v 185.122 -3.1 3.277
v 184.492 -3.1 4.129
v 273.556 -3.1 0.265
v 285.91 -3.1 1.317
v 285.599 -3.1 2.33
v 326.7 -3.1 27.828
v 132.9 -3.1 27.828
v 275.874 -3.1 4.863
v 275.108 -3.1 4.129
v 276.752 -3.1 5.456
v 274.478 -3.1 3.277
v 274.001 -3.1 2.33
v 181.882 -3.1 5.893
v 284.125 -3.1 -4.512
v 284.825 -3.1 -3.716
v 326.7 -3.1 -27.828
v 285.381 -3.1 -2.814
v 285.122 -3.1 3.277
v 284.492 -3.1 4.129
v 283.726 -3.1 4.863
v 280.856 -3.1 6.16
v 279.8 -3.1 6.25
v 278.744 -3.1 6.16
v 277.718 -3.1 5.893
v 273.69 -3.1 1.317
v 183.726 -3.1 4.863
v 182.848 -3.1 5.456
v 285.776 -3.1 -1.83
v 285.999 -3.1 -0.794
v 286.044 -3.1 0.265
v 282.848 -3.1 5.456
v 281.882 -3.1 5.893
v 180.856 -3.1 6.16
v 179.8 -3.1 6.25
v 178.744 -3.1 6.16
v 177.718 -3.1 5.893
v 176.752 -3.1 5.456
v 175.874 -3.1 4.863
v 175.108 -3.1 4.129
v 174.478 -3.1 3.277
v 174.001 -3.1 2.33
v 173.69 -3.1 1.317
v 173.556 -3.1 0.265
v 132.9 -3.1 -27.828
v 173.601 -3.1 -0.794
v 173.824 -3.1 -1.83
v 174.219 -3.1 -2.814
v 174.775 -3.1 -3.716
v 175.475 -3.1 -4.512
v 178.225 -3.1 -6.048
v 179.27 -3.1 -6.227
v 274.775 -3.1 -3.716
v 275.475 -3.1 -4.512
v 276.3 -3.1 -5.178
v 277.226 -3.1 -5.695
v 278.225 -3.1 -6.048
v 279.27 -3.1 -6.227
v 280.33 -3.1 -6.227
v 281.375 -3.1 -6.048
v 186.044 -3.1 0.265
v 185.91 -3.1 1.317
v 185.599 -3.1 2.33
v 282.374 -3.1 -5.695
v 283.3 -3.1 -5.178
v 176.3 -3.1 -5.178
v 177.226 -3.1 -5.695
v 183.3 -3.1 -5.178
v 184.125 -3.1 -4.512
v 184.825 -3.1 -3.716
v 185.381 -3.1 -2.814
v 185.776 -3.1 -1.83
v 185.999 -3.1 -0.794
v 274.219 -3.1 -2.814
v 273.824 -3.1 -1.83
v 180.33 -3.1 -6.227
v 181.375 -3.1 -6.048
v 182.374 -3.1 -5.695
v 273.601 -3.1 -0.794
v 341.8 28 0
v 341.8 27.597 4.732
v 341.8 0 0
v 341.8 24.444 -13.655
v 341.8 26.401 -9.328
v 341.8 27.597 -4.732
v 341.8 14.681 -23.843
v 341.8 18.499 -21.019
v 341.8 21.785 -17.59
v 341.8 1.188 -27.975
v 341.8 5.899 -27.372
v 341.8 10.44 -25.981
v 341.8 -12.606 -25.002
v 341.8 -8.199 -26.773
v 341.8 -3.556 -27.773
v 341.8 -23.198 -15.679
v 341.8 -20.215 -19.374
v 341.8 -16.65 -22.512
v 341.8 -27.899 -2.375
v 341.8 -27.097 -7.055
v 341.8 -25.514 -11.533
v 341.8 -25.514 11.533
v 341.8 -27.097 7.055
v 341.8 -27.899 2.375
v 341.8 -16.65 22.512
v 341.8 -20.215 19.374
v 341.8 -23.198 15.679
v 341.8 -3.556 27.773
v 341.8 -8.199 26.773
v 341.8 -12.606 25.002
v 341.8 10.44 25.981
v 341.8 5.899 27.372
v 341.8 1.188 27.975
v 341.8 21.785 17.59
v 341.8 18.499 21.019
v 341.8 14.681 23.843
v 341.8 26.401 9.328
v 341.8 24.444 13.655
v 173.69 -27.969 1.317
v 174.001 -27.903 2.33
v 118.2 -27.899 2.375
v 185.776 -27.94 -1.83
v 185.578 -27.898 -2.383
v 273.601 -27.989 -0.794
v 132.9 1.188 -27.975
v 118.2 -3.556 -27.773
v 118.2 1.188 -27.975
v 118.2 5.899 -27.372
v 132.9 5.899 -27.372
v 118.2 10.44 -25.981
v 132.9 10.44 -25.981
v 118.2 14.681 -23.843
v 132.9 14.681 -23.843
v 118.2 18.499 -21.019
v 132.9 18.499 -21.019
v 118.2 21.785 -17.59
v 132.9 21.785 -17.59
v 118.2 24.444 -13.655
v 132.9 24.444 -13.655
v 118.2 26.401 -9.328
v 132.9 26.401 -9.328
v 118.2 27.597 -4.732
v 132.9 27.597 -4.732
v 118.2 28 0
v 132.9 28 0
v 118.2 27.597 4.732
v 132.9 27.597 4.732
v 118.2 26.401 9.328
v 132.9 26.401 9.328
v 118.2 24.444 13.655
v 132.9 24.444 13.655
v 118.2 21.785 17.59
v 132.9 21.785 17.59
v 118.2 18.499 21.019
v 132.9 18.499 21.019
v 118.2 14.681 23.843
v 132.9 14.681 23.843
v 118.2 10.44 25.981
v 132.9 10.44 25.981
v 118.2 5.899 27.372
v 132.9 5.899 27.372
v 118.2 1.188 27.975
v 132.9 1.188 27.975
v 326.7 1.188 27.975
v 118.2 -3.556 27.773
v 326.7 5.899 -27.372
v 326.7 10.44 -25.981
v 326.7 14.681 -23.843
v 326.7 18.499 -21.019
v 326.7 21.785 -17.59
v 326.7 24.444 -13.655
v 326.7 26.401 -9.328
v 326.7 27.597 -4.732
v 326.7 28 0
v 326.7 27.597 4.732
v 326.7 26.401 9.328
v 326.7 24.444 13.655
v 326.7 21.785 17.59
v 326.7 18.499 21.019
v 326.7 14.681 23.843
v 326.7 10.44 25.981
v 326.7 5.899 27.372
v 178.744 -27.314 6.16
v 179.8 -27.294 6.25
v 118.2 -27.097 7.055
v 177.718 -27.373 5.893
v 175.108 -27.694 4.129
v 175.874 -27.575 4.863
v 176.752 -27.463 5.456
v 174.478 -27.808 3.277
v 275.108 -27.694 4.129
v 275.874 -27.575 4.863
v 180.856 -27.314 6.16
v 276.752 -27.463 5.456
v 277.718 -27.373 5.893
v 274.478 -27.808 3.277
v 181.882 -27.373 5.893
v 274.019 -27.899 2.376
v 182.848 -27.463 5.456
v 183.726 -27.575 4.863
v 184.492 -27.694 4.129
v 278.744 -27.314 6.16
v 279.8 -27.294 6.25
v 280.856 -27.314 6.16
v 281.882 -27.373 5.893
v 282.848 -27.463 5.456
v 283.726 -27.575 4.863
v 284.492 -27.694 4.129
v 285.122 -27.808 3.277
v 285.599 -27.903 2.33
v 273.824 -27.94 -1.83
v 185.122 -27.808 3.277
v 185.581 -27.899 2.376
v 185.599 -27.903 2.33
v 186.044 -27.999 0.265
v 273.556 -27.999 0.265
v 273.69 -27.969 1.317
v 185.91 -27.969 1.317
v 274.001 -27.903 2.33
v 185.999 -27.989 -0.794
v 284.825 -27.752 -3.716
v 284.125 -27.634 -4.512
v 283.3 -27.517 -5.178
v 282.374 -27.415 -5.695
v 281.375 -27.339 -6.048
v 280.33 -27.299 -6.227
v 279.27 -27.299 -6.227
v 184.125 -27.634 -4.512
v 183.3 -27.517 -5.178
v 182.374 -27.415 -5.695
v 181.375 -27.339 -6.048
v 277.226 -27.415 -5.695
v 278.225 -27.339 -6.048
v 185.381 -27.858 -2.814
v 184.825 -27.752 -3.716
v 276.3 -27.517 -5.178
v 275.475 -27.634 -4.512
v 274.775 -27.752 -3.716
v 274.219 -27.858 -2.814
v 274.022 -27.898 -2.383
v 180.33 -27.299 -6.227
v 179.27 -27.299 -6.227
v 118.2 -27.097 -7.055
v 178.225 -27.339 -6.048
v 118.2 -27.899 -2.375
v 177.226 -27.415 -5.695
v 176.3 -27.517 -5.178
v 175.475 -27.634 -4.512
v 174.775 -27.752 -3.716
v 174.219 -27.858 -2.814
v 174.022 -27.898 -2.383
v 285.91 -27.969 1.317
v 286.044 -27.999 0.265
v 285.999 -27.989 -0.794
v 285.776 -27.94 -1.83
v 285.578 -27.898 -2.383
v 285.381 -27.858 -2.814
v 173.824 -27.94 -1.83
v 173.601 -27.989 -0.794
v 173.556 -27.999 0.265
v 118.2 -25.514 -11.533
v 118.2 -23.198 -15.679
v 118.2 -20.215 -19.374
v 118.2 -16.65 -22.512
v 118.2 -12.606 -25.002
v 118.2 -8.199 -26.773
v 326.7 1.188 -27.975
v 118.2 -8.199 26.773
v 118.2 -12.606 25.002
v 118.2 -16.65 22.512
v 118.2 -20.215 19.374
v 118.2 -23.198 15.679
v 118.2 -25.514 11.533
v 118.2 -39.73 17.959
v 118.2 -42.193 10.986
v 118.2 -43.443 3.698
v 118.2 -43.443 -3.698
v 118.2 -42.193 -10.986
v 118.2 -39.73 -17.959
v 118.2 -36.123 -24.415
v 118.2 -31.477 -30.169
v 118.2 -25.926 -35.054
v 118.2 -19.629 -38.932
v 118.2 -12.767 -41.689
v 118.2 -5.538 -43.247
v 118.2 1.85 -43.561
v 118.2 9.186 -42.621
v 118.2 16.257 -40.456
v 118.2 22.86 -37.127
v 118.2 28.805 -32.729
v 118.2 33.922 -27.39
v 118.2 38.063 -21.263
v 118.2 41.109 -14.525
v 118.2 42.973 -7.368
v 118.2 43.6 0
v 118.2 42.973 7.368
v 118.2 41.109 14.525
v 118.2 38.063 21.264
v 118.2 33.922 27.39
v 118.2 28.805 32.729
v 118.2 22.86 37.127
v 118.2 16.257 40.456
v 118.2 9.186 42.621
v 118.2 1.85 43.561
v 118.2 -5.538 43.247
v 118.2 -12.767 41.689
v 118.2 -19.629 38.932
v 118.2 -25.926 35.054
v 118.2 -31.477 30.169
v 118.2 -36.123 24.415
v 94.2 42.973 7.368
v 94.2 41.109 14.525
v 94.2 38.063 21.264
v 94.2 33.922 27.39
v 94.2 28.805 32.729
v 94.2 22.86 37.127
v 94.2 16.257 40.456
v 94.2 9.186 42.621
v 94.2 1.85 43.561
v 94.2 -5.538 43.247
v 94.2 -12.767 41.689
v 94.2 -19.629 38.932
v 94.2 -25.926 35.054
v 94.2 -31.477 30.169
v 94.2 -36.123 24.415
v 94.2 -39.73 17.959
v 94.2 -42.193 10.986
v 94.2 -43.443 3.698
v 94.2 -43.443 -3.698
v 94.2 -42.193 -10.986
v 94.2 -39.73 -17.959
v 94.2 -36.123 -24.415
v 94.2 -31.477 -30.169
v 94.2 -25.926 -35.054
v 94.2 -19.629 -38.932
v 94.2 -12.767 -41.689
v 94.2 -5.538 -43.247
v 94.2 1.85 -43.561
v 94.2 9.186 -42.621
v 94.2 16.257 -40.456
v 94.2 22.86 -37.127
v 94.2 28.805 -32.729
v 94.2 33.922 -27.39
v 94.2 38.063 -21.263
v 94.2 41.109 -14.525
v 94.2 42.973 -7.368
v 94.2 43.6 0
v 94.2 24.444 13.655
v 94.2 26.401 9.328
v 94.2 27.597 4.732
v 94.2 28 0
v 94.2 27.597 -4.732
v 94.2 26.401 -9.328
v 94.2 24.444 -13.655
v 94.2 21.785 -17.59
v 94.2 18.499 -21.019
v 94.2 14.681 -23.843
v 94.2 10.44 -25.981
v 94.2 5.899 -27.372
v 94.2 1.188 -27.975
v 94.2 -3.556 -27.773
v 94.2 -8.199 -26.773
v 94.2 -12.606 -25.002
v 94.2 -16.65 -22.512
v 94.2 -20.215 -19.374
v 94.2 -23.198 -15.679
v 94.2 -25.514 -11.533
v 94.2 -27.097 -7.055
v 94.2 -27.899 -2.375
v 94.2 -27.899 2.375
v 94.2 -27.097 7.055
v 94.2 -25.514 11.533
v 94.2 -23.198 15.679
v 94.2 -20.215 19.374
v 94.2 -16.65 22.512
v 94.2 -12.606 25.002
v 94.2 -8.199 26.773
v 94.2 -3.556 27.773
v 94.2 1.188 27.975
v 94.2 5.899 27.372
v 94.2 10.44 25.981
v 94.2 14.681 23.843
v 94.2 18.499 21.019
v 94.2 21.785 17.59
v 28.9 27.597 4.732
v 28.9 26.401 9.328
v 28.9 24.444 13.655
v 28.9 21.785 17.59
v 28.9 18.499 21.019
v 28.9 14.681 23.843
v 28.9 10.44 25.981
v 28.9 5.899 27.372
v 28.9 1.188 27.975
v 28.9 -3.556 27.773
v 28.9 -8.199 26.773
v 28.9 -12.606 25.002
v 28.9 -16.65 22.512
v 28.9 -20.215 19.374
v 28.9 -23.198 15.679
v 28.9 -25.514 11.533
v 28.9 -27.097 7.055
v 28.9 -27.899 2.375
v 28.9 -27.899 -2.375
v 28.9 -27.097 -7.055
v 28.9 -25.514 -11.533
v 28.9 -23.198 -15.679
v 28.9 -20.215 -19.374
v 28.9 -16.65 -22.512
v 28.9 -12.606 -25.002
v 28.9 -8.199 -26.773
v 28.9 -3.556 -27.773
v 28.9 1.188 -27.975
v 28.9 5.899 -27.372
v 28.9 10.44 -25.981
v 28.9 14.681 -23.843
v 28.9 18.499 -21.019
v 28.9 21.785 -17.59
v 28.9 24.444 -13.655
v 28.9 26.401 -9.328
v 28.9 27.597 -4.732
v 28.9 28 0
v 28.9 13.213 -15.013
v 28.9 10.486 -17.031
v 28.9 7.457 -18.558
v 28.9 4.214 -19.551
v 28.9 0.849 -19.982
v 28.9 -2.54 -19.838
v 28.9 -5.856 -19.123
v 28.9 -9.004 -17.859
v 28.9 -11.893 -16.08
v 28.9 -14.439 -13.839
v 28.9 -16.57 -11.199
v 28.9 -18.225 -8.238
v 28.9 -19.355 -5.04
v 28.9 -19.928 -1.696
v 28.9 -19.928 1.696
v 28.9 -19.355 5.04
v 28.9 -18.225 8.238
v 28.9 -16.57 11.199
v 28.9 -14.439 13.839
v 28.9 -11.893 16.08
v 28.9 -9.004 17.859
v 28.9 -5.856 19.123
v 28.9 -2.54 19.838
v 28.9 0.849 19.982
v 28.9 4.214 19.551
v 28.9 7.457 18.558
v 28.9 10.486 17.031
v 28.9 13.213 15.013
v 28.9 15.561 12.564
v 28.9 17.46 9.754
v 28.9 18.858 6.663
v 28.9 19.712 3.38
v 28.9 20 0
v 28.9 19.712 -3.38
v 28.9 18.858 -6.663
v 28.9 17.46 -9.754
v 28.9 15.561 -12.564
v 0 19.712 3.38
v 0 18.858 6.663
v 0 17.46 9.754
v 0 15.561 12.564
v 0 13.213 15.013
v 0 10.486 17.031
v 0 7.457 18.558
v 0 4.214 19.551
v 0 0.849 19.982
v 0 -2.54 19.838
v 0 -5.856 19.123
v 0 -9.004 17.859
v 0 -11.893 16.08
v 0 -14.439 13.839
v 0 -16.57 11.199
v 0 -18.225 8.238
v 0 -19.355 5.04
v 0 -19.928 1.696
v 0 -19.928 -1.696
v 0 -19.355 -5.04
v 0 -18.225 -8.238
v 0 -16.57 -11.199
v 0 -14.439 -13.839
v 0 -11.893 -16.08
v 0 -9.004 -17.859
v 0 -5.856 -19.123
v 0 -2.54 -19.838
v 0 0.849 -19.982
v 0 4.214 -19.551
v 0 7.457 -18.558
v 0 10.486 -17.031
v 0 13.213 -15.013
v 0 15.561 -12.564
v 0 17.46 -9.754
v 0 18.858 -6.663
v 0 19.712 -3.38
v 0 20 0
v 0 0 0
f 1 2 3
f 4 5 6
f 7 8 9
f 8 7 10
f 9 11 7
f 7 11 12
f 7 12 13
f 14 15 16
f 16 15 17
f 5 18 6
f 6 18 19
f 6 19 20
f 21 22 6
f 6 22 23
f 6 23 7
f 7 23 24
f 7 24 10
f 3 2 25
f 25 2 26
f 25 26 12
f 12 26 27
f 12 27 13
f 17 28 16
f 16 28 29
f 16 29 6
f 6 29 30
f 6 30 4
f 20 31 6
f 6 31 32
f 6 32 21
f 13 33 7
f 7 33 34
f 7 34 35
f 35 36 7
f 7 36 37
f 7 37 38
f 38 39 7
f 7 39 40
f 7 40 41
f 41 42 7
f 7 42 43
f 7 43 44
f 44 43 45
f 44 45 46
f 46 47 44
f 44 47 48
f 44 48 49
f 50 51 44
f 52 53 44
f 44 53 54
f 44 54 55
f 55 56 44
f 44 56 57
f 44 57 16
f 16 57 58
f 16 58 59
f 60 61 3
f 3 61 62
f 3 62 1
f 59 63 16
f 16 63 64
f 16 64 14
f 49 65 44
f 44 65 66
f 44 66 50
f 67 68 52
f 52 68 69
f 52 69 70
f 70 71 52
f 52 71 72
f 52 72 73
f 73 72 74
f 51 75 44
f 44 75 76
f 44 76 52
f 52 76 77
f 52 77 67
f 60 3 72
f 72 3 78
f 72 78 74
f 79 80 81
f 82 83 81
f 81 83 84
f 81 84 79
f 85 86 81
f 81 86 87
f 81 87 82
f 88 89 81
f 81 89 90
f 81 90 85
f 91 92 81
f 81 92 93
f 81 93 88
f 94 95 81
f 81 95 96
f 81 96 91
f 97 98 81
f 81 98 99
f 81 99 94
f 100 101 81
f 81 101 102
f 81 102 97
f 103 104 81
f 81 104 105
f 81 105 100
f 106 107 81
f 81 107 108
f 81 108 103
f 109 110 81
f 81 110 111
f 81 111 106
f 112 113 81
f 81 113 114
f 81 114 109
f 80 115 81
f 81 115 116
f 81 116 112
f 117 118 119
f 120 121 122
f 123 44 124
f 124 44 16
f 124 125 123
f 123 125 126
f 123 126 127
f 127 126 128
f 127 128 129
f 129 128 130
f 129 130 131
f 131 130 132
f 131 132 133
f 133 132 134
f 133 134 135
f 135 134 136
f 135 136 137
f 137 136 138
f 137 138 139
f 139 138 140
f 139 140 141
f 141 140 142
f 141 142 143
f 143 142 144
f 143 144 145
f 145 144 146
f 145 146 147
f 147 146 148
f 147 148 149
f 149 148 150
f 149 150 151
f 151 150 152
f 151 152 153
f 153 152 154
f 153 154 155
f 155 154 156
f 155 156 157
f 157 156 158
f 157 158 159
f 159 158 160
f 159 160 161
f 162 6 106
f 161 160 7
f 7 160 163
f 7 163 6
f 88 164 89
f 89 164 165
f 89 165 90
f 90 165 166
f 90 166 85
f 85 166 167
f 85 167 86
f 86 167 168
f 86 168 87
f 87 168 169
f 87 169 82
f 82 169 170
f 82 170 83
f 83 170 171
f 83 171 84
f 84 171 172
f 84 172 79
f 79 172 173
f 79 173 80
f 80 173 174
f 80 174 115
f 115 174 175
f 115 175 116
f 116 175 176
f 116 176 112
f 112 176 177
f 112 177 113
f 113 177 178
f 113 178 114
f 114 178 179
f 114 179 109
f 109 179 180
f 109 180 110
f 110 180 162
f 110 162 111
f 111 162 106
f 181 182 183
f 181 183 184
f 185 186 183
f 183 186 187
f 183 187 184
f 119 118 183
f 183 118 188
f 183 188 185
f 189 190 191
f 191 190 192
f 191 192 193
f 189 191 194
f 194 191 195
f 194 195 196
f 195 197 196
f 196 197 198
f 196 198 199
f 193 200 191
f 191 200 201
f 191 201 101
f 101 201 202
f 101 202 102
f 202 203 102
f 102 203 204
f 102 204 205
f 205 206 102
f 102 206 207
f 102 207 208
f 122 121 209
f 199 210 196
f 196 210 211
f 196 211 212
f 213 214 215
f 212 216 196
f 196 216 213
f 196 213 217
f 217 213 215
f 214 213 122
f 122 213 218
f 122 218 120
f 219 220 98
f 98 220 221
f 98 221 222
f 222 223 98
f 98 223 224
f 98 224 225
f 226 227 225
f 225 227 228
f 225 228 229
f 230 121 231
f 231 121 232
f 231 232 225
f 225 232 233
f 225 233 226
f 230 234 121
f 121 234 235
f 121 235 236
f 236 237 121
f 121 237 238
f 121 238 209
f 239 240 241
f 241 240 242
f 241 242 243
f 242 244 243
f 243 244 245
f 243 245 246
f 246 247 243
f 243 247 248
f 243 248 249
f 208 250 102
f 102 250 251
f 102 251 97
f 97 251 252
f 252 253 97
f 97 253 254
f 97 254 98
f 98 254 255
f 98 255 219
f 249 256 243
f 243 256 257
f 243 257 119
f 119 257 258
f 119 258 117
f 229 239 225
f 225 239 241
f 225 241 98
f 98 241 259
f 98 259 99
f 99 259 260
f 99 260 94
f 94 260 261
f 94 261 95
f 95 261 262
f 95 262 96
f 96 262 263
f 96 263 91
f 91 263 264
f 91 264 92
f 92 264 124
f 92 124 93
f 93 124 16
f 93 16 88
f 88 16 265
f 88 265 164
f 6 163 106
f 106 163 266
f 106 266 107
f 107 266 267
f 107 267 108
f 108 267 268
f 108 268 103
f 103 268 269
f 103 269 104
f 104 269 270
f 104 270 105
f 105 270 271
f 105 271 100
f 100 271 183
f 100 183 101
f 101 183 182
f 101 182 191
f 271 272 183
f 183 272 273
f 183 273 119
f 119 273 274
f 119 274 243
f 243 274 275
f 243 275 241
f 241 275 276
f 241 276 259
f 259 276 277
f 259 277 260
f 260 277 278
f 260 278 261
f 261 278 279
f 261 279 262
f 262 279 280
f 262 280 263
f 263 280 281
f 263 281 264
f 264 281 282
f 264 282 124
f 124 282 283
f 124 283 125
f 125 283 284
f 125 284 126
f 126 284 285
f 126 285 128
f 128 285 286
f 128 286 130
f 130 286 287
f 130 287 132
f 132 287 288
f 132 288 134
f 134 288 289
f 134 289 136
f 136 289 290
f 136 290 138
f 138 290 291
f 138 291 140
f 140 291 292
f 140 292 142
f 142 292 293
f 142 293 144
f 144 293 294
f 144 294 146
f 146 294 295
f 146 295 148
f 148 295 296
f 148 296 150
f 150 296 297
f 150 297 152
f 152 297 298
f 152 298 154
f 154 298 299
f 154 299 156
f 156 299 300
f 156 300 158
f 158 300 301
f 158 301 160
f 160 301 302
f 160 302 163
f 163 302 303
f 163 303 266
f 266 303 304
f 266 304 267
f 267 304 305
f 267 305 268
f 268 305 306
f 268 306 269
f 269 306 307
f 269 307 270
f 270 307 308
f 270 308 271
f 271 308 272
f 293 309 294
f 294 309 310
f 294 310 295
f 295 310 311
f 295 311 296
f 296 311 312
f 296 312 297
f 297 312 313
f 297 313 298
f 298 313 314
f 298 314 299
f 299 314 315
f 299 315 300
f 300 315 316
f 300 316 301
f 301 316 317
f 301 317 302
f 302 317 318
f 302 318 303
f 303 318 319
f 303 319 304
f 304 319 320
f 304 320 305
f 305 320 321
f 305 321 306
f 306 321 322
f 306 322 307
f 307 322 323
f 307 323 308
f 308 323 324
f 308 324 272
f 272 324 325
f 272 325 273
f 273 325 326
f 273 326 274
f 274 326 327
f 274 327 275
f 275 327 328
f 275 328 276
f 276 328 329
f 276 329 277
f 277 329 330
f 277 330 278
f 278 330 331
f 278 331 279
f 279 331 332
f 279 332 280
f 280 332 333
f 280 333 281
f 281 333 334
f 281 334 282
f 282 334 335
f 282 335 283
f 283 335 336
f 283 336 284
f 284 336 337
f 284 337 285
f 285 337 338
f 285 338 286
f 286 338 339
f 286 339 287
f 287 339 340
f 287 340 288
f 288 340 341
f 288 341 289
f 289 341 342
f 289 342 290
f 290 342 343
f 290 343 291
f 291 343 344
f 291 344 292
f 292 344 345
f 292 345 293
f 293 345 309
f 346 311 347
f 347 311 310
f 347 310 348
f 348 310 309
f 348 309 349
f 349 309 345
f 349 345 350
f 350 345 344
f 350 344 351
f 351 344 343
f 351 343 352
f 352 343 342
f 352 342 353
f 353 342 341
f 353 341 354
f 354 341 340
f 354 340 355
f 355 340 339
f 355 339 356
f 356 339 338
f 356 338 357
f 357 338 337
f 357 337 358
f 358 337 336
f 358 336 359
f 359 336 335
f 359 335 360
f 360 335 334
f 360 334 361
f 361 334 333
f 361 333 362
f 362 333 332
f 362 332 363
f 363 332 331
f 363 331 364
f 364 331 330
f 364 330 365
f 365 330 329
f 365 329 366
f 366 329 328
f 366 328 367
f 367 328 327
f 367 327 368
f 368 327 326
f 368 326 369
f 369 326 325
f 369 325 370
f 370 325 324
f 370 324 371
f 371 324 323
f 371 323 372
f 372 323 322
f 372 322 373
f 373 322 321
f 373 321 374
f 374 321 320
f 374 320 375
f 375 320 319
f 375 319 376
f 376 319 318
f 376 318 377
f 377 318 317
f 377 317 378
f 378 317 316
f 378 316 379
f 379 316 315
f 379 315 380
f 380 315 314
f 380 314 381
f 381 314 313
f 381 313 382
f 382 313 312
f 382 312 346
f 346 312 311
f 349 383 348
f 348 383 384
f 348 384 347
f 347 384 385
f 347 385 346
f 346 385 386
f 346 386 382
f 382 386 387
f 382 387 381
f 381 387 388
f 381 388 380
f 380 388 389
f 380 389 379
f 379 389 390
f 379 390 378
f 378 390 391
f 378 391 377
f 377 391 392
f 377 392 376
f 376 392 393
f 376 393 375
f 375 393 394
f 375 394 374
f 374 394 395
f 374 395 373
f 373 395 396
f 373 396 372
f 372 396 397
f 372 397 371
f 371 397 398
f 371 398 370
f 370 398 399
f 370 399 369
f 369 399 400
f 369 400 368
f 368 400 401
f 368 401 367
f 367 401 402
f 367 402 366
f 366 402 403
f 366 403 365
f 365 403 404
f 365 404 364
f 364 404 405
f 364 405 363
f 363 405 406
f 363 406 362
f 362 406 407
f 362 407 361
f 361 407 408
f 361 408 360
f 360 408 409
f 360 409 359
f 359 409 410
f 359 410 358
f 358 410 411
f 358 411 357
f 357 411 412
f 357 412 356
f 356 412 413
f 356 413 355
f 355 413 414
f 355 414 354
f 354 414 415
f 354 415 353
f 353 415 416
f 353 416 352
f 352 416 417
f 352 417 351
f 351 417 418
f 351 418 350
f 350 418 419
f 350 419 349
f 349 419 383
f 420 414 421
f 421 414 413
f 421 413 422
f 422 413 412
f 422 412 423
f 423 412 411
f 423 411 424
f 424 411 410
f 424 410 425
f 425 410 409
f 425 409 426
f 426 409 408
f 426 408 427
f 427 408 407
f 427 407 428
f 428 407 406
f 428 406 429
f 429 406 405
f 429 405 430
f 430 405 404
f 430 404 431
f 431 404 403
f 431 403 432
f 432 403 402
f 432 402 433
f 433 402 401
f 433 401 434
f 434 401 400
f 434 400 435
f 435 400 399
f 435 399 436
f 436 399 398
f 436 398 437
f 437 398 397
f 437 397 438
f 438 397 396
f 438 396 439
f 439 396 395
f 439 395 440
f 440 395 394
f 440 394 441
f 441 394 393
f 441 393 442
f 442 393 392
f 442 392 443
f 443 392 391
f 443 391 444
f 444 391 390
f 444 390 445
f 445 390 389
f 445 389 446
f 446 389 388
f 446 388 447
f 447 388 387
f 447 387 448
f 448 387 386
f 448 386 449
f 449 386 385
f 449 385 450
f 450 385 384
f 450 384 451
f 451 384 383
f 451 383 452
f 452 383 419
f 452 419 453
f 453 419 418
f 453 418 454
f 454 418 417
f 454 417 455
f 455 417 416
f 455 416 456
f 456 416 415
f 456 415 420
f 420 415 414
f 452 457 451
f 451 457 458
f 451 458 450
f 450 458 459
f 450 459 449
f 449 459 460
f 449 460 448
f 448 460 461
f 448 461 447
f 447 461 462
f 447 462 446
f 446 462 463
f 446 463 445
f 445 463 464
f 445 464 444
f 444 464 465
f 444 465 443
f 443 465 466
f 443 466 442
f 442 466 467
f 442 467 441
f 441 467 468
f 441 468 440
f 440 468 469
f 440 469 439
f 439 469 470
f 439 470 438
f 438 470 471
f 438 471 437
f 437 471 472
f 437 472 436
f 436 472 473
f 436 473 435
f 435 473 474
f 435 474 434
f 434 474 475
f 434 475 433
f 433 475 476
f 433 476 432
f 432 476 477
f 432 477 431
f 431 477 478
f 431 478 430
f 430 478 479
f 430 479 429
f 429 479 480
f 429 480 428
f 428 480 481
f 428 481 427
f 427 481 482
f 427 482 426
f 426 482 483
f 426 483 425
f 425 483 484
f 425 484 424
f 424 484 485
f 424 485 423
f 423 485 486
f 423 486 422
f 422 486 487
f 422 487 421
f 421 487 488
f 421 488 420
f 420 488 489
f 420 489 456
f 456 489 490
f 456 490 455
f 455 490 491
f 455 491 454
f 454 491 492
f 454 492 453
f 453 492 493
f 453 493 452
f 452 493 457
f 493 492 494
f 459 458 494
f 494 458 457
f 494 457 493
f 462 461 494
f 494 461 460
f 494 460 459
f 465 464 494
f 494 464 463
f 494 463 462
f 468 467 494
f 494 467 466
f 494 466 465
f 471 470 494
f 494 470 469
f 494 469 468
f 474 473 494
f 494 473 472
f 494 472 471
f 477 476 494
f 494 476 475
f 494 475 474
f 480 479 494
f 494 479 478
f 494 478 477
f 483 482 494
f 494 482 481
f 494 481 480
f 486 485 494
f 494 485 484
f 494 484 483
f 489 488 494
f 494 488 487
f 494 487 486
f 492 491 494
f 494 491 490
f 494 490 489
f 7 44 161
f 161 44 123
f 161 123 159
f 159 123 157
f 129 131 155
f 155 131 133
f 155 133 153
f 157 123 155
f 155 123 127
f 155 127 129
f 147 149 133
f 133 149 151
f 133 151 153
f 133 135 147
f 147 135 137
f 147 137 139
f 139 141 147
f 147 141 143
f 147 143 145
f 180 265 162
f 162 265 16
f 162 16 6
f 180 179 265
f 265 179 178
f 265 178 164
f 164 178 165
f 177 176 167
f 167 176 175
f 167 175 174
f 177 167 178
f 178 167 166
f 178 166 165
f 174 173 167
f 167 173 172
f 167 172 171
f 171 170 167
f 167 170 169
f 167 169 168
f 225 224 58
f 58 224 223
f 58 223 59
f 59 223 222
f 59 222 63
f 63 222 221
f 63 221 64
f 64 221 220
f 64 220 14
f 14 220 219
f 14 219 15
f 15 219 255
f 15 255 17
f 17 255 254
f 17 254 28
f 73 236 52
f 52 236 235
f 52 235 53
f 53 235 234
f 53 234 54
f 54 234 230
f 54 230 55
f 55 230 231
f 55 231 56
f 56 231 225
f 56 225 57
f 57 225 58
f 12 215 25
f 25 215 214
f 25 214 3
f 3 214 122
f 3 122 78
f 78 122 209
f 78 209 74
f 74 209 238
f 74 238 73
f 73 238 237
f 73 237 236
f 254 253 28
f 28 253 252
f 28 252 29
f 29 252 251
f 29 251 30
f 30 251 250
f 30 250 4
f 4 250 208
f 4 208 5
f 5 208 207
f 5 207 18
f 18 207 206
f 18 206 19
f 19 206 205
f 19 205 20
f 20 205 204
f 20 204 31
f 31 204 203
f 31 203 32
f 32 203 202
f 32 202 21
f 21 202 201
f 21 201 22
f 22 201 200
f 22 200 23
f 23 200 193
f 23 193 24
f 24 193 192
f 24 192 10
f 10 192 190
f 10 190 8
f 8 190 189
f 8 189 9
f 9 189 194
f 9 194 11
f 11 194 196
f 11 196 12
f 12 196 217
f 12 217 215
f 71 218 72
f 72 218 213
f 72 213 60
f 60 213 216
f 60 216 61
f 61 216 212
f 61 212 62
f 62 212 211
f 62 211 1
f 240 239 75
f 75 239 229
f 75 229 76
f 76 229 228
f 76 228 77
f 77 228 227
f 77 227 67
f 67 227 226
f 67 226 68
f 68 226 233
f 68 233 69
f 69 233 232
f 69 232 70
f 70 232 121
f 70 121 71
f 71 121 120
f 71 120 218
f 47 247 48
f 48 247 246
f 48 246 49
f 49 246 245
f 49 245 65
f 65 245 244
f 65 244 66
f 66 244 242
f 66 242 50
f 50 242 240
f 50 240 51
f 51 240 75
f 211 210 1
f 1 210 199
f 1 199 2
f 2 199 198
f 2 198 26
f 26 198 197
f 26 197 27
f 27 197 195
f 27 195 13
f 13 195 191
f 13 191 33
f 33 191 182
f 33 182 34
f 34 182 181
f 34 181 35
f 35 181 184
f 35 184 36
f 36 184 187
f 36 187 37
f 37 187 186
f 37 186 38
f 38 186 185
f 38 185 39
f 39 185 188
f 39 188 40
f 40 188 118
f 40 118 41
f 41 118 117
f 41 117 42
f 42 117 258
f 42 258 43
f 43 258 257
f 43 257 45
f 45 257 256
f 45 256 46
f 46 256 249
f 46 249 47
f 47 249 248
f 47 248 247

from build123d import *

# Parameters (mm, degrees)
SKETCH1_W               = 24
SKETCH1_H               = 15.6
SKETCH2_W               = 193.8
SKETCH2_H               = 31.1
CUT_EXTRUDE1_DEPTH      = 44.6
CUT_EXTRUDE1_DEPTH_BACK = 44.6
HOLE1_D                 = 12.5
HOLE1_DEPTH             = 24.9


with BuildPart() as part:
    # Sketch1 → Revolve2 (revolve)
    with BuildSketch(Plane.XY):
        Polygon((0, 20), (0, 0), (341.8, 0), (341.8, 28), (118.2, 28), (94.2, 28), (28.9, 28), (28.9, 20), align=None)
        with Locations((106.2, 35.8)):
            Rectangle(SKETCH1_W, SKETCH1_H)
    revolve(axis=Axis((341.8, 0, 0), (-1, 0, 0)))

    # Sketch2 → Cut-Extrude1 (cut, two sides)
    with BuildSketch(Plane.XY) as cut_extrude1_sk:
        with Locations((229.8, 12.45)):
            Rectangle(SKETCH2_W, SKETCH2_H)
    extrude(amount=CUT_EXTRUDE1_DEPTH, mode=Mode.SUBTRACT)
    extrude(cut_extrude1_sk.sketch, amount=-CUT_EXTRUDE1_DEPTH_BACK, mode=Mode.SUBTRACT)

    # Hole1
    with Locations(Plane(origin=(0, -3.1, 0), x_dir=(1, 0, 0), z_dir=(0, 1, 0))):
        with Locations((179.8, 0), (279.8, 0)):
            Hole(HOLE1_D / 2, depth=HOLE1_DEPTH)


solid = part.part
